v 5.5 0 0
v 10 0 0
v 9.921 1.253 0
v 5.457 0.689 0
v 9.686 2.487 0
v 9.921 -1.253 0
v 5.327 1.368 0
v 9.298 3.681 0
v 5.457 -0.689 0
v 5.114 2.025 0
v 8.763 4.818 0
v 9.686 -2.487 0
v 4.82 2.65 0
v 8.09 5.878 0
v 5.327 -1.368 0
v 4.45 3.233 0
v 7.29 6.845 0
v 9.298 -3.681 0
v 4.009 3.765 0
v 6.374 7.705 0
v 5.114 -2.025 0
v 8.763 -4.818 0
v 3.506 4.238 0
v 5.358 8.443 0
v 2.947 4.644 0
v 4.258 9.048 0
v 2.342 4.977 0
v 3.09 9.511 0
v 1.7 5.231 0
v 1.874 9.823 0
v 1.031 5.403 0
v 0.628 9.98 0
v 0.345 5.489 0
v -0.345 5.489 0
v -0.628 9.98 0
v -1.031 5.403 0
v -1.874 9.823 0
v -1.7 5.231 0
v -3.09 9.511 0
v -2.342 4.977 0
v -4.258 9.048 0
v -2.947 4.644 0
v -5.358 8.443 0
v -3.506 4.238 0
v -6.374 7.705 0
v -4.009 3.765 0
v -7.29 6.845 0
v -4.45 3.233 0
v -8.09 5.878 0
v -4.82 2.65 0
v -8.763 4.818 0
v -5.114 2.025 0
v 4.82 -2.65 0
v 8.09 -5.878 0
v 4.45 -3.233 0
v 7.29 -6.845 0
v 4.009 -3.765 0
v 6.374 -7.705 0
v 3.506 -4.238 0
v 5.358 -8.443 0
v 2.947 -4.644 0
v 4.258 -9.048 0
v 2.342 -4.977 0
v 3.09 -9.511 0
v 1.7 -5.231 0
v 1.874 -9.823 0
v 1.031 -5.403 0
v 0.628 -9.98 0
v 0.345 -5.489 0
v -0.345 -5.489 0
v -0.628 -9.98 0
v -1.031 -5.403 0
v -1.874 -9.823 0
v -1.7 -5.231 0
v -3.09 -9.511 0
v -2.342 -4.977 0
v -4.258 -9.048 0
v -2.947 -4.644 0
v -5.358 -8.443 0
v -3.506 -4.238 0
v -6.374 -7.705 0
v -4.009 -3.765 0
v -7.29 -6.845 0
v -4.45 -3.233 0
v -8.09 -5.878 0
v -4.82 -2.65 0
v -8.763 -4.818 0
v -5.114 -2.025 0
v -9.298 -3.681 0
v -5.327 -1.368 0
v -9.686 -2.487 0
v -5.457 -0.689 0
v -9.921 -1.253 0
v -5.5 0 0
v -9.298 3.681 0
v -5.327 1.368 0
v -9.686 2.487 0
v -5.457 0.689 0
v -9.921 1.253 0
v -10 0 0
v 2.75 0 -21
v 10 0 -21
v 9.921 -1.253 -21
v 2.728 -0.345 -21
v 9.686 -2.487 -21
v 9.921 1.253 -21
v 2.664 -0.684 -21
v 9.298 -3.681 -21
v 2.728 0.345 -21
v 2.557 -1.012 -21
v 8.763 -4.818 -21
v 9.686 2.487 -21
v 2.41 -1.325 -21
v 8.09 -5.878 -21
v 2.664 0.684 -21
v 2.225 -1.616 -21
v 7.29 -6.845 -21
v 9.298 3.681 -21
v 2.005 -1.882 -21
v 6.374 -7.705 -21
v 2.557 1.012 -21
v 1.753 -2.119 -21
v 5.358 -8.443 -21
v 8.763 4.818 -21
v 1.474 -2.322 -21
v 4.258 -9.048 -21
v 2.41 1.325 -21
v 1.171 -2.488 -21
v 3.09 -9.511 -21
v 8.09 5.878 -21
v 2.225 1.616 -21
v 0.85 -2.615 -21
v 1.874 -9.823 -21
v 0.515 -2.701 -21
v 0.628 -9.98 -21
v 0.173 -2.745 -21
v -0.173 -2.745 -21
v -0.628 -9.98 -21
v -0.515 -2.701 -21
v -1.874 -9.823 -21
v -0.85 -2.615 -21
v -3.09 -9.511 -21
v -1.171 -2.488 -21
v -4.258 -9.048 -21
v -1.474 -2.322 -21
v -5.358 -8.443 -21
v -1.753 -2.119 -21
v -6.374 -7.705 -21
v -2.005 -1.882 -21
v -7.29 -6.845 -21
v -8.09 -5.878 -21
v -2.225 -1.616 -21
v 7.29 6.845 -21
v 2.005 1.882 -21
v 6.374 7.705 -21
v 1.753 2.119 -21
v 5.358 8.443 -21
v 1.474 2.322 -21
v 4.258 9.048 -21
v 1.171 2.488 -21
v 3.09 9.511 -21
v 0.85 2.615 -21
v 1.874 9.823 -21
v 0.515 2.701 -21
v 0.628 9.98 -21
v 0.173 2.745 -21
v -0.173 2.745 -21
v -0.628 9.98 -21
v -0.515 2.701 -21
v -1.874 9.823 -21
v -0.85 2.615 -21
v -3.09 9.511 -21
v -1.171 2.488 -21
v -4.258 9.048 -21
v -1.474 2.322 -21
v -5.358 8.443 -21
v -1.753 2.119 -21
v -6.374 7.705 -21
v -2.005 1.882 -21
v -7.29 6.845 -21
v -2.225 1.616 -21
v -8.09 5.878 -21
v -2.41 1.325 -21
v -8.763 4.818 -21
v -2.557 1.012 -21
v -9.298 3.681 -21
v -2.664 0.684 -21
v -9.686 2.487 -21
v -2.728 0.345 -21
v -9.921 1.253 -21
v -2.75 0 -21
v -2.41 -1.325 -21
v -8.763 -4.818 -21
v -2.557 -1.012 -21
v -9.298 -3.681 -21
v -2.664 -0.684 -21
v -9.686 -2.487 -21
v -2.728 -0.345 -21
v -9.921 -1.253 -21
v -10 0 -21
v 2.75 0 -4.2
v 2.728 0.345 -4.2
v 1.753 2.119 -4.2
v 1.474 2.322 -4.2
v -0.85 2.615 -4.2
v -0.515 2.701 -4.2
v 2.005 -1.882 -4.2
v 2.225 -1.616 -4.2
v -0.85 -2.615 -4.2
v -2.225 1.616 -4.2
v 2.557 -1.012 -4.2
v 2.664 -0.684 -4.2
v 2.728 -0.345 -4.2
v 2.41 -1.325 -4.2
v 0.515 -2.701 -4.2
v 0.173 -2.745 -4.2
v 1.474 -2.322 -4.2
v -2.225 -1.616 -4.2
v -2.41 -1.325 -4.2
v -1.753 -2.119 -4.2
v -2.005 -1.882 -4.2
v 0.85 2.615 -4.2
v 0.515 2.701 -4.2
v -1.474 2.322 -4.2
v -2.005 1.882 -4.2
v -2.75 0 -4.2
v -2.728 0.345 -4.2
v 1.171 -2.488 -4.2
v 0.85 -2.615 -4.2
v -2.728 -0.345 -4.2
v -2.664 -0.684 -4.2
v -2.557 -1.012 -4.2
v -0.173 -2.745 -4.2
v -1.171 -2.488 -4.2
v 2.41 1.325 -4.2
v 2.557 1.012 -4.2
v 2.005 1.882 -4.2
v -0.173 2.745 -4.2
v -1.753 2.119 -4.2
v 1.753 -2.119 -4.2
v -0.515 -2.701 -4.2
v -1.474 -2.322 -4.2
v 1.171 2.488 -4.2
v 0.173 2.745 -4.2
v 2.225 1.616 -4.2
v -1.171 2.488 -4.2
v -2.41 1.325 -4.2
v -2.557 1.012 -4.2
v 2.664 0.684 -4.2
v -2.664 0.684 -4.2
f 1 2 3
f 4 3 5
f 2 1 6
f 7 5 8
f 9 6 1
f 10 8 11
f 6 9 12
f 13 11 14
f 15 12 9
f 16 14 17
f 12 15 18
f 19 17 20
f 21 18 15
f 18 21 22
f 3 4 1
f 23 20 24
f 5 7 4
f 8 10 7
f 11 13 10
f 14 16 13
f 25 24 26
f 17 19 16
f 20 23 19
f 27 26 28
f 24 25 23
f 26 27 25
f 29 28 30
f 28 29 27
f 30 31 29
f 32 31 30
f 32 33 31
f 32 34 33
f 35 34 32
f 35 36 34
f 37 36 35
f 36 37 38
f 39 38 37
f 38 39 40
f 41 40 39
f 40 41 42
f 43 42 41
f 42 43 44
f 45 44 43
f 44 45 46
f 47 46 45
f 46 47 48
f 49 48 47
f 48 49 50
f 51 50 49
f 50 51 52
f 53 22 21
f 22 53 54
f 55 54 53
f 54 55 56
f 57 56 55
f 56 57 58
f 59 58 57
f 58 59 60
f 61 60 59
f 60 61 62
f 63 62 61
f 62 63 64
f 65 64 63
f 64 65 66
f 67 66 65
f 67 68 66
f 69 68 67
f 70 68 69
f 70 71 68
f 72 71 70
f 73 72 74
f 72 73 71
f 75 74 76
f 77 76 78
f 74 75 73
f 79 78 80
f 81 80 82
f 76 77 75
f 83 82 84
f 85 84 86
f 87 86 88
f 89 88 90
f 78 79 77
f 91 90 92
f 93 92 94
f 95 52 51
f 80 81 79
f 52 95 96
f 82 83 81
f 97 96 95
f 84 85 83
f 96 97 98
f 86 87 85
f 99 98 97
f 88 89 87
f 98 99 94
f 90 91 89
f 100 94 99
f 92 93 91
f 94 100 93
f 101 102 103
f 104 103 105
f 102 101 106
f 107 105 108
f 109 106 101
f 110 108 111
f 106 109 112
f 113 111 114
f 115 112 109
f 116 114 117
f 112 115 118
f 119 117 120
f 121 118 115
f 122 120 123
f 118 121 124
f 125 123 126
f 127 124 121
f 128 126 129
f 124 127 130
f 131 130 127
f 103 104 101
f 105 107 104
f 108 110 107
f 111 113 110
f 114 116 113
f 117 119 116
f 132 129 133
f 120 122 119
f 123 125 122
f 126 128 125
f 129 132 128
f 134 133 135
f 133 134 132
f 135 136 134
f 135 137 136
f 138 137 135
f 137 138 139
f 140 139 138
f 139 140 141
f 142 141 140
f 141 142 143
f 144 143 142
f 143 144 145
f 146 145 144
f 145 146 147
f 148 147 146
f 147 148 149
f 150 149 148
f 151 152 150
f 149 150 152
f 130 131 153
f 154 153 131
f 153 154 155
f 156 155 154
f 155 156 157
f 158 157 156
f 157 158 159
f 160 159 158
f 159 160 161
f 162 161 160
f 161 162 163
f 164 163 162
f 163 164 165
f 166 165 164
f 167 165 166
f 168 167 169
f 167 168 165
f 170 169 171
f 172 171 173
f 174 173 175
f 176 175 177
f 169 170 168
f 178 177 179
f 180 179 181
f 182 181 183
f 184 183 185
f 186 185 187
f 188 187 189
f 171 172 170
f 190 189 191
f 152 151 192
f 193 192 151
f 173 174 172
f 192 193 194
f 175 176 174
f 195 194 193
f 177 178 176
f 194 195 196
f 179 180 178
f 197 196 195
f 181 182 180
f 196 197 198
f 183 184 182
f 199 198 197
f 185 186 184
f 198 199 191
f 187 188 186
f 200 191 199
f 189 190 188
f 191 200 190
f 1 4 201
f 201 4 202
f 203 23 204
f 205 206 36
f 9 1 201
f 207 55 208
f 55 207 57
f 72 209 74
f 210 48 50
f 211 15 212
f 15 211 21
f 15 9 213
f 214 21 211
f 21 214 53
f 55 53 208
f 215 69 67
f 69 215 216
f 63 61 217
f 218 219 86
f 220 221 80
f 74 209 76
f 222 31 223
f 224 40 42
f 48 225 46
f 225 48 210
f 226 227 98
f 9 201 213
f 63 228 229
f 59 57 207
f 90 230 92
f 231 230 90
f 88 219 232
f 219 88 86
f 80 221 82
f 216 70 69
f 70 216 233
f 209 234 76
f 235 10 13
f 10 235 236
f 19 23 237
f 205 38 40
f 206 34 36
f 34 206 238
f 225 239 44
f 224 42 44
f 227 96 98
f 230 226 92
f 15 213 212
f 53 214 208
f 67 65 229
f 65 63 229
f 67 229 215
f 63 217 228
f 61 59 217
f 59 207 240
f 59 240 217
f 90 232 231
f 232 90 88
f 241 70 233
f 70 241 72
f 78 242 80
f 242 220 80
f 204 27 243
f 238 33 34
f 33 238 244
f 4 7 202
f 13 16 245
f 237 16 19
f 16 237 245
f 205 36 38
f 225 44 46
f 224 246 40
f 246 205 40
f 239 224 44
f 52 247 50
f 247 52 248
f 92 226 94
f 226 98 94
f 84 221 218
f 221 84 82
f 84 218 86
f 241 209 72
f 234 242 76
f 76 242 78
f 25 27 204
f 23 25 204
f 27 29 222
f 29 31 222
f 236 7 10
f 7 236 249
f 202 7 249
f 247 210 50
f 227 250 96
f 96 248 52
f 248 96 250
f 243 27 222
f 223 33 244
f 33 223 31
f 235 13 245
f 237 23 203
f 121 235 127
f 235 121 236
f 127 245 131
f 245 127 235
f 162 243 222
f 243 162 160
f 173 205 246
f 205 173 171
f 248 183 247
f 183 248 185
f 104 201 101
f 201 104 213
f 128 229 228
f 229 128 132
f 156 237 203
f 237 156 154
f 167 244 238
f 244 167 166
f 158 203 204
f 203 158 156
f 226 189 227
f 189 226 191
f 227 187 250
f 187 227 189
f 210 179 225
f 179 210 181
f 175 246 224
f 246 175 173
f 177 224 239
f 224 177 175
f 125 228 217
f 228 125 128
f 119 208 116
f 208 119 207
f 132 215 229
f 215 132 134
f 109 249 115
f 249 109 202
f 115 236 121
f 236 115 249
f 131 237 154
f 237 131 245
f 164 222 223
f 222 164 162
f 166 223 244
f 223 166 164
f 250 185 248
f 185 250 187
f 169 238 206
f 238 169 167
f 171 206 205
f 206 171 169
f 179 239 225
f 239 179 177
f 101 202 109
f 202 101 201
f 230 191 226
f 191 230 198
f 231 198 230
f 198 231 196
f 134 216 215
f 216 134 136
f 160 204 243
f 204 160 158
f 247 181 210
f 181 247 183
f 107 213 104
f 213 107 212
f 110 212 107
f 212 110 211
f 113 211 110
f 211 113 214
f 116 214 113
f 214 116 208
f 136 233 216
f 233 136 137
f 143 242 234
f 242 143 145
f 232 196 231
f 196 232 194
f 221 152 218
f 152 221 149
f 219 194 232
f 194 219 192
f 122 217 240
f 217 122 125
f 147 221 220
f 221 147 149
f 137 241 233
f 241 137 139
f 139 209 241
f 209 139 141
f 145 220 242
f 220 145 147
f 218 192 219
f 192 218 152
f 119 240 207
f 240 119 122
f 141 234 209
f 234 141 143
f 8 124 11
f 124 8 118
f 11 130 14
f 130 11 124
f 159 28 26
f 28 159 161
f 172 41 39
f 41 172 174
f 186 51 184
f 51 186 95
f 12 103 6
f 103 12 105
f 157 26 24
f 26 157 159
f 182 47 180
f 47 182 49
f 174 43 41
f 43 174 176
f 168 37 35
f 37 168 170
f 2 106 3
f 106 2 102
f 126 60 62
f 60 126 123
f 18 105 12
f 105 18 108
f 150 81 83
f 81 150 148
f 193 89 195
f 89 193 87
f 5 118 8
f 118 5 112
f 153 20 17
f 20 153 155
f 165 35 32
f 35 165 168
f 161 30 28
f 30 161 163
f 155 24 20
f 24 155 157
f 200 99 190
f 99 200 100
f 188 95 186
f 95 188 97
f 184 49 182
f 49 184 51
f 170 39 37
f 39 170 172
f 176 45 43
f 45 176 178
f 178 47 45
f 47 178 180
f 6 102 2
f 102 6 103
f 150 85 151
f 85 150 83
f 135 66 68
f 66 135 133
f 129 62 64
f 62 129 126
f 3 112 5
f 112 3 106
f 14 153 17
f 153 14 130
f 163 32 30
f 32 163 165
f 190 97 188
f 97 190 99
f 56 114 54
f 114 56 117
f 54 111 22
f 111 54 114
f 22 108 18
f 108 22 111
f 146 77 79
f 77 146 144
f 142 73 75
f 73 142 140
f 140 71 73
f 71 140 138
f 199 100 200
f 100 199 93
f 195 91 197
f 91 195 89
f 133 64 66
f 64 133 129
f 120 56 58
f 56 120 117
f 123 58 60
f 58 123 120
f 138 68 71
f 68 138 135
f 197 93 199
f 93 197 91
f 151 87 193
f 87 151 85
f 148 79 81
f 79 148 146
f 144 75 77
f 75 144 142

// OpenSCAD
$fn = 50;


difference() {
	union() {
		translate(v = [0, 0, -21.0000000000]) {
			cylinder(h = 21, r = 10.0000000000);
		}
		cylinder(h = 0, r = 19.0000000000);
	}
	union() {
		translate(v = [0, 0, 0]) {
			rotate(a = [0, 0, 0]) {
				difference() {
					union() {
						#translate(v = [0, 0, -21.0000000000]) {
							cylinder(h = 21, r = 2.2500000000);
						}
						#translate(v = [0, 0, -4.2000000000]) {
							cylinder(h = 4.2000000000, r1 = 2.7500000000, r2 = 5.5000000000);
						}
						#translate(v = [0, 0, -21.0000000000]) {
							cylinder(h = 21, r = 2.7500000000);
						}
						#translate(v = [0, 0, -21.0000000000]) {
							cylinder(h = 21, r = 2.2500000000);
						}
					}
					union();
				}
			}
		}
	}
}
